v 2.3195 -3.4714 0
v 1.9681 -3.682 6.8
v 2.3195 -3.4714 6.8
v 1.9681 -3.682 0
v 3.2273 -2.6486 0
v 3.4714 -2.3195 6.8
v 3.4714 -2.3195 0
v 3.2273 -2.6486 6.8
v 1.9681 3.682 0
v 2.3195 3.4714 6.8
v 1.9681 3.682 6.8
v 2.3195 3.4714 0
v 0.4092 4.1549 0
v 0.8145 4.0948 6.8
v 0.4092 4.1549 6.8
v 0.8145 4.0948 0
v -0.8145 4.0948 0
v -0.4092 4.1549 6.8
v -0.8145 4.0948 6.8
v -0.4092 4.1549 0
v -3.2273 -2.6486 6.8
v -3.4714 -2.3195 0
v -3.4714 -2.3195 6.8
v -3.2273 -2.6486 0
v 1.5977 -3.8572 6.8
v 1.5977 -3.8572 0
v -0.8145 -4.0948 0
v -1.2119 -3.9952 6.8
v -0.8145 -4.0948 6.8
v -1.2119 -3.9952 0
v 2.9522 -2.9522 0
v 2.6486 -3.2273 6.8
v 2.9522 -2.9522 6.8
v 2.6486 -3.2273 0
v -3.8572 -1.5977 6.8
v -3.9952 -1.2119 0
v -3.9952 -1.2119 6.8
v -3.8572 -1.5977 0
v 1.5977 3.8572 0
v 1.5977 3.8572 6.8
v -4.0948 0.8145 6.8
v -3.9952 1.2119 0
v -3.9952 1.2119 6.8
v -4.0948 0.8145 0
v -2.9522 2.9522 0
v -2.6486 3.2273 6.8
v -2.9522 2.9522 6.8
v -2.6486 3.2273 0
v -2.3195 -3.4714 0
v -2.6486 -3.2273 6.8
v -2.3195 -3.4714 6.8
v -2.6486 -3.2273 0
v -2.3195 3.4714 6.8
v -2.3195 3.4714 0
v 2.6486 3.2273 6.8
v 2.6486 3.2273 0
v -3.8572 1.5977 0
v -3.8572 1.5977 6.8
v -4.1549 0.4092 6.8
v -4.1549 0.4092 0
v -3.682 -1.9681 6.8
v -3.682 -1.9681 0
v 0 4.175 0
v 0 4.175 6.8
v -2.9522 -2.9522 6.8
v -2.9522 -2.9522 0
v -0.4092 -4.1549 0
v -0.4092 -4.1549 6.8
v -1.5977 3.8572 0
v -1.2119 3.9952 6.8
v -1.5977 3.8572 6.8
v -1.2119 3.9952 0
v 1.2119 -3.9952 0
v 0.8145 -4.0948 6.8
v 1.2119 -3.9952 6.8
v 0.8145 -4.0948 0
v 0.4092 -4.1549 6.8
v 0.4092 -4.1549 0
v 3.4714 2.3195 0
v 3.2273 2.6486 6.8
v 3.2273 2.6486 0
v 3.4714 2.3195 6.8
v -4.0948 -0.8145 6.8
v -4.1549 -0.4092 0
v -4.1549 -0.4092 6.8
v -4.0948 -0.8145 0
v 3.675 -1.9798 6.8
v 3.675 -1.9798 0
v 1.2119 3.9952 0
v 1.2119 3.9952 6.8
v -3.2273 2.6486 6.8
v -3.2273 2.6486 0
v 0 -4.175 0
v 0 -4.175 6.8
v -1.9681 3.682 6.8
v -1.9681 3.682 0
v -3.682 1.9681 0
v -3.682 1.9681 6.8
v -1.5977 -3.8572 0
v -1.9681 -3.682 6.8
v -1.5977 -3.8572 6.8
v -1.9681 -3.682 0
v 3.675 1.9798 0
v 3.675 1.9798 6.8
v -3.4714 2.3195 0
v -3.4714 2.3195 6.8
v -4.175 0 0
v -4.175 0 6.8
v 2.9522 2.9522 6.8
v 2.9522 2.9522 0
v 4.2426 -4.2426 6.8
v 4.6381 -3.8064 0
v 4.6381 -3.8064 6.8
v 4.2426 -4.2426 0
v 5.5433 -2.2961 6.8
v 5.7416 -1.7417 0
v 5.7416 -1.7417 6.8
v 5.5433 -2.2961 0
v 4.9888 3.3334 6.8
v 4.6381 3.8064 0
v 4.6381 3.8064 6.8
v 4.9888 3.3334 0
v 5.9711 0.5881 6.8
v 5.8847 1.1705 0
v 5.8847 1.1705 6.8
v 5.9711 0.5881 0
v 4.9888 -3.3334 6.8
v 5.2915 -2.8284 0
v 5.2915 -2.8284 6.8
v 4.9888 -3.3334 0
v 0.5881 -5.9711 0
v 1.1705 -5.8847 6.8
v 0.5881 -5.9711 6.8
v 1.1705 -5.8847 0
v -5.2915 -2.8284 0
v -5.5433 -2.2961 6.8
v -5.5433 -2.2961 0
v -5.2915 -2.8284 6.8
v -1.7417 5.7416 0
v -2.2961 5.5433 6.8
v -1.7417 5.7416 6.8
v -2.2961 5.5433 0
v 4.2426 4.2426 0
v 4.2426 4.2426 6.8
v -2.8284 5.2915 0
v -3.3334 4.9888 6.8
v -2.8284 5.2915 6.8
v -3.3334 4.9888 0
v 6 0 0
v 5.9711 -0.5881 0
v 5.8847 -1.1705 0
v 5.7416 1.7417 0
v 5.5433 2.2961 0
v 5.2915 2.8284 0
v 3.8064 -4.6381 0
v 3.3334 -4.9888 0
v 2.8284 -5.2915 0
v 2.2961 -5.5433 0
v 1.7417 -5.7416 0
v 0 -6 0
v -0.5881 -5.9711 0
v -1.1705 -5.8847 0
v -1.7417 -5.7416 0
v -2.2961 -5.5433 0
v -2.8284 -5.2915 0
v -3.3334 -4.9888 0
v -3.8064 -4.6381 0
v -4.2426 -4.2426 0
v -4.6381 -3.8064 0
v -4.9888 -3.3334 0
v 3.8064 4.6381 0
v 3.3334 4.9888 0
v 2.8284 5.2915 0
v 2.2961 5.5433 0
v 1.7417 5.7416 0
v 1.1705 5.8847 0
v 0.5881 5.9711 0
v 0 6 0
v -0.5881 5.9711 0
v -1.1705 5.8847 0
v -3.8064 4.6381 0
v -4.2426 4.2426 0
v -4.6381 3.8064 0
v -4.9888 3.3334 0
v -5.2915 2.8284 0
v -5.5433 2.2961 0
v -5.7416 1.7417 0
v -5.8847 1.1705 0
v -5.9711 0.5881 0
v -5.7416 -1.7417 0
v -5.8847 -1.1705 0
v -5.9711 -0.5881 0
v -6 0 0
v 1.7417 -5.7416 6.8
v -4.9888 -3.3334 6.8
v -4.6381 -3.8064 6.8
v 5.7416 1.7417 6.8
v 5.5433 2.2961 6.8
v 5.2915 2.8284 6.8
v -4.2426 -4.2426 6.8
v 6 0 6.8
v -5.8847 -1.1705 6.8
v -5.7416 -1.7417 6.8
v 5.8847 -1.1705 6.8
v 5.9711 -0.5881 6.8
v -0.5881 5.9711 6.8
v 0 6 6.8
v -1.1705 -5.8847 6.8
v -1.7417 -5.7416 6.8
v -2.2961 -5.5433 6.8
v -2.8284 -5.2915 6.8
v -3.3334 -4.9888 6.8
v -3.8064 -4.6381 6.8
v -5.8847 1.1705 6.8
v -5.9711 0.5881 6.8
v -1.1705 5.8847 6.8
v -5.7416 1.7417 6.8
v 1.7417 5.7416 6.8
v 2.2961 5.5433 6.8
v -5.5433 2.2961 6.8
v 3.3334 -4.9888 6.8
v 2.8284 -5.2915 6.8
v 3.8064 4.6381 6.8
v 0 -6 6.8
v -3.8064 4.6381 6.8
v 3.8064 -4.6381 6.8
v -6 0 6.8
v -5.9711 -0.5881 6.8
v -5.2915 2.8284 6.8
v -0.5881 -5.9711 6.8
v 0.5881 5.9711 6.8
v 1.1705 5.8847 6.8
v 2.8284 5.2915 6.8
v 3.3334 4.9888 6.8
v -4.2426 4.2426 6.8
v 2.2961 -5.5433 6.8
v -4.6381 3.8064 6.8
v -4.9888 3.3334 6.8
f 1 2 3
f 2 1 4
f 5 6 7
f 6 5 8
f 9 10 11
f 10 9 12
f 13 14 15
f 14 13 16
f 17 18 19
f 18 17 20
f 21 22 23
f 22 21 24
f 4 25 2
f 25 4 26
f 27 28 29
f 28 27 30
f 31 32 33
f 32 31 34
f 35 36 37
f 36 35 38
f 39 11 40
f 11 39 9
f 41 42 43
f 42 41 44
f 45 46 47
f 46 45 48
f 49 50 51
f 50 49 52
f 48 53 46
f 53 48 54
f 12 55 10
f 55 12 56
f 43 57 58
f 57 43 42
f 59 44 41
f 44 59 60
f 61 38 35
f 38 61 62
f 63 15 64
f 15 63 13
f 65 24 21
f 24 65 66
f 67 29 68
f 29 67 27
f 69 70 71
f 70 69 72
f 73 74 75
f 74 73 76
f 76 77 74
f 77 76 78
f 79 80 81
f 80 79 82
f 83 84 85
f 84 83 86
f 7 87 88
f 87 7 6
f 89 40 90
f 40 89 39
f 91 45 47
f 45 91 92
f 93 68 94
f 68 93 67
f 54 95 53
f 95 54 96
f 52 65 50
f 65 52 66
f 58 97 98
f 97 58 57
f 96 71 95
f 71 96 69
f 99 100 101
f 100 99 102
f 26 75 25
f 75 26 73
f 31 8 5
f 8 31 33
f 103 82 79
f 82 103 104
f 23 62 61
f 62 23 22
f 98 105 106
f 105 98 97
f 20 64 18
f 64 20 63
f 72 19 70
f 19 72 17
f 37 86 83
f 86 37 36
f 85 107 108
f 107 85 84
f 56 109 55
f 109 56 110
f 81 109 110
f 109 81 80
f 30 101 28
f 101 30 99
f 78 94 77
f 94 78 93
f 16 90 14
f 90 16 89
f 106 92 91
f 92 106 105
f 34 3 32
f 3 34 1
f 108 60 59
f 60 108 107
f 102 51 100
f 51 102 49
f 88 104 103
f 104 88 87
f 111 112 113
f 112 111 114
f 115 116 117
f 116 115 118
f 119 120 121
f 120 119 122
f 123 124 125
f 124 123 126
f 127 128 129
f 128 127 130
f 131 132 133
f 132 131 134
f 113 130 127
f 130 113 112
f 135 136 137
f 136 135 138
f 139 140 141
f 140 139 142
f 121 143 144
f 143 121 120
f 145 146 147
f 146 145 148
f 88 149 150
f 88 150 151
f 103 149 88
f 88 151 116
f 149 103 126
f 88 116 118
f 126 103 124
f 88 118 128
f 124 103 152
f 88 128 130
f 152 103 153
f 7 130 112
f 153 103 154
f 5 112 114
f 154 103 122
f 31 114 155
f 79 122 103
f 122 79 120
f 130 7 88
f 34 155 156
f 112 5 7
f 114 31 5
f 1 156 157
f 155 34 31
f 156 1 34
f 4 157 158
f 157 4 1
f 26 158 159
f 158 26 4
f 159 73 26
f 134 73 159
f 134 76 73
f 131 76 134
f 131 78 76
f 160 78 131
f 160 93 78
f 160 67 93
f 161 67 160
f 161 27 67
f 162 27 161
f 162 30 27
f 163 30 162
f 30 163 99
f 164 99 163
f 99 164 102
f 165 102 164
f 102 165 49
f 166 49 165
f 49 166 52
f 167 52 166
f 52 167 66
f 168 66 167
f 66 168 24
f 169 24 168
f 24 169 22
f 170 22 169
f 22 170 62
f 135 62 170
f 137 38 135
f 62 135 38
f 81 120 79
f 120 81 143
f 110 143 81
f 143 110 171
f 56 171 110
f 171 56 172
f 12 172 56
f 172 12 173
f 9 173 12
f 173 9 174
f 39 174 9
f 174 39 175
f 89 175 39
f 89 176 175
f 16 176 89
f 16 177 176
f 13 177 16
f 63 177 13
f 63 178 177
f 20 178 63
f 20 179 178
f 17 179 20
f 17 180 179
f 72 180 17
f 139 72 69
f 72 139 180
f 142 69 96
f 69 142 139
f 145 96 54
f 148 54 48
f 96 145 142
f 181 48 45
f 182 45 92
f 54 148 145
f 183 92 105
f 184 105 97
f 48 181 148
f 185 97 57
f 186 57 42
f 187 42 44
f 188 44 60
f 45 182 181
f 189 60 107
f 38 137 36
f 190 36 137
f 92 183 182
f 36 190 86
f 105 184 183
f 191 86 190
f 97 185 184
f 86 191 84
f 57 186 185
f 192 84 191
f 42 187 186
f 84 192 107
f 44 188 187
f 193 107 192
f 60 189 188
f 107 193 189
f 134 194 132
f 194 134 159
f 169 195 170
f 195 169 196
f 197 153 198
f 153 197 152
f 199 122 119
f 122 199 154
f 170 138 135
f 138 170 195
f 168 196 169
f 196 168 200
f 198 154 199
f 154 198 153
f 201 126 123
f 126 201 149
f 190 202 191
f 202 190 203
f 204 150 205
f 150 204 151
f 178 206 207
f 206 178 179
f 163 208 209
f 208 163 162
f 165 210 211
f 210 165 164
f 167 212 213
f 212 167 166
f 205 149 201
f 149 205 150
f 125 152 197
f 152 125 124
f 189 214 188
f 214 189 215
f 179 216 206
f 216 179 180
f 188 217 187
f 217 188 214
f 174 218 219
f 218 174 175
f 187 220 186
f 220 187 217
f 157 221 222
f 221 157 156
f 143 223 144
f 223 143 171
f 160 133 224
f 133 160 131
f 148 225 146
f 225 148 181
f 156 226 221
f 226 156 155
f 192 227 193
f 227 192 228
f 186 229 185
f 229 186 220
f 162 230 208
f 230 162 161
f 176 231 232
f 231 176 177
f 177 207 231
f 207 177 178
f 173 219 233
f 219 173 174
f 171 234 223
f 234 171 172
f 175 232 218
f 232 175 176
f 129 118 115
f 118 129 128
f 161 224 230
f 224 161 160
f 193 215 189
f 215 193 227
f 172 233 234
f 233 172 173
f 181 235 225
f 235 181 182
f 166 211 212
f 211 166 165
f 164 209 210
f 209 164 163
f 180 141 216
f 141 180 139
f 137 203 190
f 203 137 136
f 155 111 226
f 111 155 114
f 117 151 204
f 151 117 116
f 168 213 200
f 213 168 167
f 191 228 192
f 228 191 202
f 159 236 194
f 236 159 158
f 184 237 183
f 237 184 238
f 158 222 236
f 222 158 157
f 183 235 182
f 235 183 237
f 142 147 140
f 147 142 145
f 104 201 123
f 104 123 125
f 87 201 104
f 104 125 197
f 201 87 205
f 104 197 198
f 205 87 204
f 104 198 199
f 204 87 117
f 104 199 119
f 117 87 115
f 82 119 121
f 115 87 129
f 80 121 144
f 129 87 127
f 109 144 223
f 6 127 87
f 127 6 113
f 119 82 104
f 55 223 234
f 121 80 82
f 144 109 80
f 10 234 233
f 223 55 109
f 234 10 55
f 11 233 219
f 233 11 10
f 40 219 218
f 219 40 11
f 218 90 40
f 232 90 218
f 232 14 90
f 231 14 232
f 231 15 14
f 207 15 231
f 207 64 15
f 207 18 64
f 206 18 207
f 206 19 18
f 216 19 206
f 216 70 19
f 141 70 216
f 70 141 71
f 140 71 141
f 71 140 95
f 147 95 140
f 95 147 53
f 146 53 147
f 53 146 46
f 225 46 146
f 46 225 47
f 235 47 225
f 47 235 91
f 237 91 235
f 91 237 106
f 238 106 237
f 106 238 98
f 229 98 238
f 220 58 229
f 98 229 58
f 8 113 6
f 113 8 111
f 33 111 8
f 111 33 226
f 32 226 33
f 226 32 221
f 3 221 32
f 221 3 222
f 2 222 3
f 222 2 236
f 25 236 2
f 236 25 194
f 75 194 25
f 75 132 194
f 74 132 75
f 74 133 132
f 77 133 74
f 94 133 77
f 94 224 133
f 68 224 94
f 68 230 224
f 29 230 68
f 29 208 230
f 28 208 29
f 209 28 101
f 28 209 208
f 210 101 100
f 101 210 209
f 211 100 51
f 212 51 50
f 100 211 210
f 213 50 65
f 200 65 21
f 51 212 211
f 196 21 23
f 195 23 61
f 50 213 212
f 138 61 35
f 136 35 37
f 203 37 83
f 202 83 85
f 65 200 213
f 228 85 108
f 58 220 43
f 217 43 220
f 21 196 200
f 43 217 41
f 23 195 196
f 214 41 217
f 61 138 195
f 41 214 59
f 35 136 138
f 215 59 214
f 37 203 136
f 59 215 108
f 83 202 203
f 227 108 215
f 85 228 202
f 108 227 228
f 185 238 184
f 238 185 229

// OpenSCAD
// Gen-CQ — gap sleeve: rigid spacer on the shaft BETWEEN the two rotor carriers (passes through the stator
// hole). Length = m2m, so it sets the magnet gap and carries the full magnet pull. Print x1, upright.
include <parameters.scad>;
$fn = 64;
// D-flat keyed bore: flat faces +X (angle 0 = magnet pocket 0 = index notch)
module dflat_bore(h) {
    intersection() {
        cylinder(d=shaft_bore, h=h);
        translate([-shaft_bore, -shaft_bore, 0]) cube([shaft_bore + dflat_x, 2*shaft_bore, h]);
    }
}

difference() {
    cylinder(d=sleeve_od, h=m2m);
    translate([0, 0, -0.1]) dflat_bore(m2m + 0.2);
}
